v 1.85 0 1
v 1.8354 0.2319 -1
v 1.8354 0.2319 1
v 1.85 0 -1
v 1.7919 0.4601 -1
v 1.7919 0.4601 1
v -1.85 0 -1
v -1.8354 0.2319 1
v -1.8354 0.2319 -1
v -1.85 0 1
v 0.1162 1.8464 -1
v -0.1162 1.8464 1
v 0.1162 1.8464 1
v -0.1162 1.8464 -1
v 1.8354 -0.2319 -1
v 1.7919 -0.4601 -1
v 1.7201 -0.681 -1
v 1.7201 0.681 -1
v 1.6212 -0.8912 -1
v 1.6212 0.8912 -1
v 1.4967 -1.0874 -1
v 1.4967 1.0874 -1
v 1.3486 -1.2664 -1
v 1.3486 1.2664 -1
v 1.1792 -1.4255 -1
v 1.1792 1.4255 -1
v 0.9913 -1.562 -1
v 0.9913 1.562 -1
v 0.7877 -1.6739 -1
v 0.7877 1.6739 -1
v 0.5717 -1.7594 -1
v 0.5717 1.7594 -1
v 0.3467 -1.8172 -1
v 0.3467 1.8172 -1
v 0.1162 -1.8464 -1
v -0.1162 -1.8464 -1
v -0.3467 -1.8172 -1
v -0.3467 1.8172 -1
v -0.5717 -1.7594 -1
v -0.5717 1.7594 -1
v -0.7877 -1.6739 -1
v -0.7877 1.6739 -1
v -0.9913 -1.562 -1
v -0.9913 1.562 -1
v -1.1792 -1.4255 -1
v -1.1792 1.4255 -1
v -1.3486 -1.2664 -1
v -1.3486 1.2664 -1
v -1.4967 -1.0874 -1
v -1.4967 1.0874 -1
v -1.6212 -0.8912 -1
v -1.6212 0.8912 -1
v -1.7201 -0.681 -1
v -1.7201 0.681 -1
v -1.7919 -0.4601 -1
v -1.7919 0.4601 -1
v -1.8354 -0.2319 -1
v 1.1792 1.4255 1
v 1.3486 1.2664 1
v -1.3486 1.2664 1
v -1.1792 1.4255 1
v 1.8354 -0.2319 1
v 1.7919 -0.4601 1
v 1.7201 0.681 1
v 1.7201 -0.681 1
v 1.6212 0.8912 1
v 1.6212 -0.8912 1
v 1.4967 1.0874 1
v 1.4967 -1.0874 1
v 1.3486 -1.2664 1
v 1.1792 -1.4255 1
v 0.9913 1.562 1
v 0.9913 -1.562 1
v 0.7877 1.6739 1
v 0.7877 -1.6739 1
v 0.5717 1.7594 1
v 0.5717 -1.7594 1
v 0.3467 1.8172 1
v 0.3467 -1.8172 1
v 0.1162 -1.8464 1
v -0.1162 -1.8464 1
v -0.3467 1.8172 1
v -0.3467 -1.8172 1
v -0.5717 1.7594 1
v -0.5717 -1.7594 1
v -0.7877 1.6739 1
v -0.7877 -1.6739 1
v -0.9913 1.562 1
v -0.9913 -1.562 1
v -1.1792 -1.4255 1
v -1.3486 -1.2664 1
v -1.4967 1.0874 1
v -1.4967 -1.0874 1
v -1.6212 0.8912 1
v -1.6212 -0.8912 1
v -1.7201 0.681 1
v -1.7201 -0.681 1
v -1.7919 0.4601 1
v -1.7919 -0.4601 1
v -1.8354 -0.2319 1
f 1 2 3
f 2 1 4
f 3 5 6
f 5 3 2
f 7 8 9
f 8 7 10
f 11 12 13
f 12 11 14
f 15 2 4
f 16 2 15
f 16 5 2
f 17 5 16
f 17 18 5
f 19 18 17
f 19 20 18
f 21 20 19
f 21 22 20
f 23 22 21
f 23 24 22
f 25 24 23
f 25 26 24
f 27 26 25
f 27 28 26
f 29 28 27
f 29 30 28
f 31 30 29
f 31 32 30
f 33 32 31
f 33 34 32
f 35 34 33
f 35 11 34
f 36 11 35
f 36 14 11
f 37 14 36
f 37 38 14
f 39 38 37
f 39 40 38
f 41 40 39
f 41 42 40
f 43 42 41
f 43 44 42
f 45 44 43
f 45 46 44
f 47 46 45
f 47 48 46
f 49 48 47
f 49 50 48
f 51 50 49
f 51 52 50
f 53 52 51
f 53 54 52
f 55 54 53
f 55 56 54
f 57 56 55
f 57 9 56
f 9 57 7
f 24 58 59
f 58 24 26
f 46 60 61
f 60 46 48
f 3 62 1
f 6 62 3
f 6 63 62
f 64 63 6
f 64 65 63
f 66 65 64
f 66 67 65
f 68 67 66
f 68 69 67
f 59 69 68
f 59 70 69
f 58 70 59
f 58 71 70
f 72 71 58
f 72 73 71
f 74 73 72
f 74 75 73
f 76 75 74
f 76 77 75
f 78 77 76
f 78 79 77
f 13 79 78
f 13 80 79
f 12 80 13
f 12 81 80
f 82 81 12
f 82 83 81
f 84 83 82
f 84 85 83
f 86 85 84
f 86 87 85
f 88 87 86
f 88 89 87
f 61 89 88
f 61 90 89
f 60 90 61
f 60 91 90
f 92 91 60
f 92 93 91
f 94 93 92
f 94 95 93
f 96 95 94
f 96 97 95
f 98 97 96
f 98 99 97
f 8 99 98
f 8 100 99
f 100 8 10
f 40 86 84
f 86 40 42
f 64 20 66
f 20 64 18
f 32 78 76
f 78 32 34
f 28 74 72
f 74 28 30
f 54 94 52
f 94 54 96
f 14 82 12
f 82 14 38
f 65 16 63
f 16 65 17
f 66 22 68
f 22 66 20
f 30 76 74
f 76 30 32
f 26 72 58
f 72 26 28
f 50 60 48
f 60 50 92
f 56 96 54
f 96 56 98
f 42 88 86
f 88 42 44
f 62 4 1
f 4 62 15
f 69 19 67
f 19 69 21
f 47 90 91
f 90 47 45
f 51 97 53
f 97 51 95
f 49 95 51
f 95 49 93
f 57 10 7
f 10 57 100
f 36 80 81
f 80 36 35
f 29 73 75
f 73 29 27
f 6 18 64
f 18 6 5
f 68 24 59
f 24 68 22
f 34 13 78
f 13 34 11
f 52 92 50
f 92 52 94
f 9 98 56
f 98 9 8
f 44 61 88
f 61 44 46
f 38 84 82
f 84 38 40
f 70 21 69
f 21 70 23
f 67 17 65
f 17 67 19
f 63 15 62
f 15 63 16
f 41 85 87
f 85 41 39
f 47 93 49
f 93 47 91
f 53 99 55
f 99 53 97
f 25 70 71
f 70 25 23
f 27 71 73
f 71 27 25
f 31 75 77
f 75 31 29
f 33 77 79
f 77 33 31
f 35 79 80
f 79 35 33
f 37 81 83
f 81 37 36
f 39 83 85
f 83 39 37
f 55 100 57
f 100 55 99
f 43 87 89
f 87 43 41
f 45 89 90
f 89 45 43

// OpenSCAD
$fn = 50;


difference() {
	union() {
		translate(v = [0, 0, -1.0000000000]) {
			cylinder(h = 2, r = 1.8500000000);
		}
	}
	union() {
		translate(v = [0, 0, -100.0000000000]) {
			cylinder(h = 200, r = 0);
		}
	}
}
